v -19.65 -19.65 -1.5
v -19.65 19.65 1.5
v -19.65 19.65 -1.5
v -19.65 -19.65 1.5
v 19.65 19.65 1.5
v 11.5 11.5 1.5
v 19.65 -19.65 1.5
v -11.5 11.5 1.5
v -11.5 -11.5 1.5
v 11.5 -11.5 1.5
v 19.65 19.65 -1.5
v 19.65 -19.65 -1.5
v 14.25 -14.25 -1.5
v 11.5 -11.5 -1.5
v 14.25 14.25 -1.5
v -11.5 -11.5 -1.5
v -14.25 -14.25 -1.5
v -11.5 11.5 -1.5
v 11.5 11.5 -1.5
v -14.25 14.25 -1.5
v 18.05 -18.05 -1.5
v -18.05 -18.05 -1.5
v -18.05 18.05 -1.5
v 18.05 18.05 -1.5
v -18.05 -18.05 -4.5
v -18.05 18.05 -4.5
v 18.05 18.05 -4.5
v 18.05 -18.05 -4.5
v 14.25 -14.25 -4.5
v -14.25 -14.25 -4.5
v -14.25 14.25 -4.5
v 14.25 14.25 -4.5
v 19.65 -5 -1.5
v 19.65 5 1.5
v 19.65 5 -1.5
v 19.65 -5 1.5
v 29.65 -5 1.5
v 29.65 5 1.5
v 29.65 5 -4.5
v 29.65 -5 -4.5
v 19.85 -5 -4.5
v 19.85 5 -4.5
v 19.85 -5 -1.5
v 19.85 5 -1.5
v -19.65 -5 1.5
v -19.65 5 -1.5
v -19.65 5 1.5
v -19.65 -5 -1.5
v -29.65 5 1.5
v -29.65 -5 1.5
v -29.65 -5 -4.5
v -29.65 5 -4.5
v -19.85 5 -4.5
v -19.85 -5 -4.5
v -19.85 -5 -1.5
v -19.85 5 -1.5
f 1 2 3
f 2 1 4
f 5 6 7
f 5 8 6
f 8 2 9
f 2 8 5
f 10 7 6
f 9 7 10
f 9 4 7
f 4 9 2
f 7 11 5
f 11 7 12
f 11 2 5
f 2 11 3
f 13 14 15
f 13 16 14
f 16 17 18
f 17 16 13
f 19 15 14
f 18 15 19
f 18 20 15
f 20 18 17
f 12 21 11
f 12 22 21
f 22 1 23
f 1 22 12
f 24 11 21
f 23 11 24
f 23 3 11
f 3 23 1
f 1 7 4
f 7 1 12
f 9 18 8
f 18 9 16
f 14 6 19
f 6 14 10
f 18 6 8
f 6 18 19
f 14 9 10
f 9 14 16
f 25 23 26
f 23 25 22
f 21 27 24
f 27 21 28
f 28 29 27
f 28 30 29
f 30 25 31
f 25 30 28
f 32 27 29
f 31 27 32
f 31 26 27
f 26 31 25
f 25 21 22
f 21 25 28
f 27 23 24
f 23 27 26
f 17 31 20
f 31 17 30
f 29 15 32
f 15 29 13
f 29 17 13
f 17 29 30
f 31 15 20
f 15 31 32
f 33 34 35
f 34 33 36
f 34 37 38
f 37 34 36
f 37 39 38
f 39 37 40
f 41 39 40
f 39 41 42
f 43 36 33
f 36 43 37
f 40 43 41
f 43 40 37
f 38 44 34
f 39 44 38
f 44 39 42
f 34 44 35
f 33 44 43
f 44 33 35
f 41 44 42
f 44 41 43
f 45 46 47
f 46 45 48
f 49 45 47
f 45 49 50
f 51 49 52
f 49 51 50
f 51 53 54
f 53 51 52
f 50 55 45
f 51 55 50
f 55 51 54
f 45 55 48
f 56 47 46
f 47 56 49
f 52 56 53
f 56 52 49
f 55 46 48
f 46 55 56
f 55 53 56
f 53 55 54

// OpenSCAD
// file: globals.scad
// variables and global things for a small rig for Giles
// to position a PCB with pogo-pins relative to a solar cell substrate
// for electrical characterization under illumination
// written by grey@christoforo.net
// on 13 OCT 2015
// numbers in mm

//variables for body
aboveShelf=24; //height above shelf
belowShelf=24; //height below shelf
wallThickness=3; //wall thickness above PCB shelf
boardBuffer=0.3; //tolerance around board
board=36; //PCB len, wid
sideOpening=25; //width of opening in sides for ribbon cable
clipDown=35; // clip slot offset from top
smallShelf=3; // width of small shelf (& additional wall thickness of bottom half)

//variables for cap
capTol=0.2; //tolerance for cap fitting
window=23; //window len,wid
substrate=28; //substrate len,wid
subsTol=0.5; // tolerance around substrate

wingWidth=10; //
wingLength=10; //
wingSpacing=3; // spacing between edge things

totalHeight=belowShelf+aboveShelf;
cubeInner=board+boardBuffer;
cubeOuter=cubeInner+wallThickness;
shelf=cubeInner/2-sideOpening/2; //shelf size

//edge thing, Zmax=0, y=centered, mirrorable across @x=0 plane
module edgeThing(){
    translate([0,-wingWidth/2,-wallThickness*2])
    difference(){
        cube([wingWidth,wingLength,wallThickness*2]);
        cube([capTol,wingLength,wallThickness]); //cutout for cap tolerace
    }
}
// main file
// cap geometery for a substrate holder for Giles
// written by grey@christoforo.net
// on 13 OCT 2015

include <globals.scad>

union() {
    //edge things
    translate([cubeOuter/2,0,wallThickness/2]) edgeThing();
    mirror([1,0,0]) translate([cubeOuter/2,0,wallThickness/2]) edgeThing();
    
    //top & window
    render() difference(){
        cube([cubeOuter,cubeOuter,wallThickness],center=true);
        cube([window,window,wallThickness],center=true);
    }
    
    //cap & substrate positioner
    translate([0, 0, -wallThickness])
    render() difference(){
        cube([cubeInner-capTol,cubeInner-capTol,wallThickness],center=true);
        cube([substrate+subsTol,substrate+subsTol,wallThickness],center=true);
    }
}
